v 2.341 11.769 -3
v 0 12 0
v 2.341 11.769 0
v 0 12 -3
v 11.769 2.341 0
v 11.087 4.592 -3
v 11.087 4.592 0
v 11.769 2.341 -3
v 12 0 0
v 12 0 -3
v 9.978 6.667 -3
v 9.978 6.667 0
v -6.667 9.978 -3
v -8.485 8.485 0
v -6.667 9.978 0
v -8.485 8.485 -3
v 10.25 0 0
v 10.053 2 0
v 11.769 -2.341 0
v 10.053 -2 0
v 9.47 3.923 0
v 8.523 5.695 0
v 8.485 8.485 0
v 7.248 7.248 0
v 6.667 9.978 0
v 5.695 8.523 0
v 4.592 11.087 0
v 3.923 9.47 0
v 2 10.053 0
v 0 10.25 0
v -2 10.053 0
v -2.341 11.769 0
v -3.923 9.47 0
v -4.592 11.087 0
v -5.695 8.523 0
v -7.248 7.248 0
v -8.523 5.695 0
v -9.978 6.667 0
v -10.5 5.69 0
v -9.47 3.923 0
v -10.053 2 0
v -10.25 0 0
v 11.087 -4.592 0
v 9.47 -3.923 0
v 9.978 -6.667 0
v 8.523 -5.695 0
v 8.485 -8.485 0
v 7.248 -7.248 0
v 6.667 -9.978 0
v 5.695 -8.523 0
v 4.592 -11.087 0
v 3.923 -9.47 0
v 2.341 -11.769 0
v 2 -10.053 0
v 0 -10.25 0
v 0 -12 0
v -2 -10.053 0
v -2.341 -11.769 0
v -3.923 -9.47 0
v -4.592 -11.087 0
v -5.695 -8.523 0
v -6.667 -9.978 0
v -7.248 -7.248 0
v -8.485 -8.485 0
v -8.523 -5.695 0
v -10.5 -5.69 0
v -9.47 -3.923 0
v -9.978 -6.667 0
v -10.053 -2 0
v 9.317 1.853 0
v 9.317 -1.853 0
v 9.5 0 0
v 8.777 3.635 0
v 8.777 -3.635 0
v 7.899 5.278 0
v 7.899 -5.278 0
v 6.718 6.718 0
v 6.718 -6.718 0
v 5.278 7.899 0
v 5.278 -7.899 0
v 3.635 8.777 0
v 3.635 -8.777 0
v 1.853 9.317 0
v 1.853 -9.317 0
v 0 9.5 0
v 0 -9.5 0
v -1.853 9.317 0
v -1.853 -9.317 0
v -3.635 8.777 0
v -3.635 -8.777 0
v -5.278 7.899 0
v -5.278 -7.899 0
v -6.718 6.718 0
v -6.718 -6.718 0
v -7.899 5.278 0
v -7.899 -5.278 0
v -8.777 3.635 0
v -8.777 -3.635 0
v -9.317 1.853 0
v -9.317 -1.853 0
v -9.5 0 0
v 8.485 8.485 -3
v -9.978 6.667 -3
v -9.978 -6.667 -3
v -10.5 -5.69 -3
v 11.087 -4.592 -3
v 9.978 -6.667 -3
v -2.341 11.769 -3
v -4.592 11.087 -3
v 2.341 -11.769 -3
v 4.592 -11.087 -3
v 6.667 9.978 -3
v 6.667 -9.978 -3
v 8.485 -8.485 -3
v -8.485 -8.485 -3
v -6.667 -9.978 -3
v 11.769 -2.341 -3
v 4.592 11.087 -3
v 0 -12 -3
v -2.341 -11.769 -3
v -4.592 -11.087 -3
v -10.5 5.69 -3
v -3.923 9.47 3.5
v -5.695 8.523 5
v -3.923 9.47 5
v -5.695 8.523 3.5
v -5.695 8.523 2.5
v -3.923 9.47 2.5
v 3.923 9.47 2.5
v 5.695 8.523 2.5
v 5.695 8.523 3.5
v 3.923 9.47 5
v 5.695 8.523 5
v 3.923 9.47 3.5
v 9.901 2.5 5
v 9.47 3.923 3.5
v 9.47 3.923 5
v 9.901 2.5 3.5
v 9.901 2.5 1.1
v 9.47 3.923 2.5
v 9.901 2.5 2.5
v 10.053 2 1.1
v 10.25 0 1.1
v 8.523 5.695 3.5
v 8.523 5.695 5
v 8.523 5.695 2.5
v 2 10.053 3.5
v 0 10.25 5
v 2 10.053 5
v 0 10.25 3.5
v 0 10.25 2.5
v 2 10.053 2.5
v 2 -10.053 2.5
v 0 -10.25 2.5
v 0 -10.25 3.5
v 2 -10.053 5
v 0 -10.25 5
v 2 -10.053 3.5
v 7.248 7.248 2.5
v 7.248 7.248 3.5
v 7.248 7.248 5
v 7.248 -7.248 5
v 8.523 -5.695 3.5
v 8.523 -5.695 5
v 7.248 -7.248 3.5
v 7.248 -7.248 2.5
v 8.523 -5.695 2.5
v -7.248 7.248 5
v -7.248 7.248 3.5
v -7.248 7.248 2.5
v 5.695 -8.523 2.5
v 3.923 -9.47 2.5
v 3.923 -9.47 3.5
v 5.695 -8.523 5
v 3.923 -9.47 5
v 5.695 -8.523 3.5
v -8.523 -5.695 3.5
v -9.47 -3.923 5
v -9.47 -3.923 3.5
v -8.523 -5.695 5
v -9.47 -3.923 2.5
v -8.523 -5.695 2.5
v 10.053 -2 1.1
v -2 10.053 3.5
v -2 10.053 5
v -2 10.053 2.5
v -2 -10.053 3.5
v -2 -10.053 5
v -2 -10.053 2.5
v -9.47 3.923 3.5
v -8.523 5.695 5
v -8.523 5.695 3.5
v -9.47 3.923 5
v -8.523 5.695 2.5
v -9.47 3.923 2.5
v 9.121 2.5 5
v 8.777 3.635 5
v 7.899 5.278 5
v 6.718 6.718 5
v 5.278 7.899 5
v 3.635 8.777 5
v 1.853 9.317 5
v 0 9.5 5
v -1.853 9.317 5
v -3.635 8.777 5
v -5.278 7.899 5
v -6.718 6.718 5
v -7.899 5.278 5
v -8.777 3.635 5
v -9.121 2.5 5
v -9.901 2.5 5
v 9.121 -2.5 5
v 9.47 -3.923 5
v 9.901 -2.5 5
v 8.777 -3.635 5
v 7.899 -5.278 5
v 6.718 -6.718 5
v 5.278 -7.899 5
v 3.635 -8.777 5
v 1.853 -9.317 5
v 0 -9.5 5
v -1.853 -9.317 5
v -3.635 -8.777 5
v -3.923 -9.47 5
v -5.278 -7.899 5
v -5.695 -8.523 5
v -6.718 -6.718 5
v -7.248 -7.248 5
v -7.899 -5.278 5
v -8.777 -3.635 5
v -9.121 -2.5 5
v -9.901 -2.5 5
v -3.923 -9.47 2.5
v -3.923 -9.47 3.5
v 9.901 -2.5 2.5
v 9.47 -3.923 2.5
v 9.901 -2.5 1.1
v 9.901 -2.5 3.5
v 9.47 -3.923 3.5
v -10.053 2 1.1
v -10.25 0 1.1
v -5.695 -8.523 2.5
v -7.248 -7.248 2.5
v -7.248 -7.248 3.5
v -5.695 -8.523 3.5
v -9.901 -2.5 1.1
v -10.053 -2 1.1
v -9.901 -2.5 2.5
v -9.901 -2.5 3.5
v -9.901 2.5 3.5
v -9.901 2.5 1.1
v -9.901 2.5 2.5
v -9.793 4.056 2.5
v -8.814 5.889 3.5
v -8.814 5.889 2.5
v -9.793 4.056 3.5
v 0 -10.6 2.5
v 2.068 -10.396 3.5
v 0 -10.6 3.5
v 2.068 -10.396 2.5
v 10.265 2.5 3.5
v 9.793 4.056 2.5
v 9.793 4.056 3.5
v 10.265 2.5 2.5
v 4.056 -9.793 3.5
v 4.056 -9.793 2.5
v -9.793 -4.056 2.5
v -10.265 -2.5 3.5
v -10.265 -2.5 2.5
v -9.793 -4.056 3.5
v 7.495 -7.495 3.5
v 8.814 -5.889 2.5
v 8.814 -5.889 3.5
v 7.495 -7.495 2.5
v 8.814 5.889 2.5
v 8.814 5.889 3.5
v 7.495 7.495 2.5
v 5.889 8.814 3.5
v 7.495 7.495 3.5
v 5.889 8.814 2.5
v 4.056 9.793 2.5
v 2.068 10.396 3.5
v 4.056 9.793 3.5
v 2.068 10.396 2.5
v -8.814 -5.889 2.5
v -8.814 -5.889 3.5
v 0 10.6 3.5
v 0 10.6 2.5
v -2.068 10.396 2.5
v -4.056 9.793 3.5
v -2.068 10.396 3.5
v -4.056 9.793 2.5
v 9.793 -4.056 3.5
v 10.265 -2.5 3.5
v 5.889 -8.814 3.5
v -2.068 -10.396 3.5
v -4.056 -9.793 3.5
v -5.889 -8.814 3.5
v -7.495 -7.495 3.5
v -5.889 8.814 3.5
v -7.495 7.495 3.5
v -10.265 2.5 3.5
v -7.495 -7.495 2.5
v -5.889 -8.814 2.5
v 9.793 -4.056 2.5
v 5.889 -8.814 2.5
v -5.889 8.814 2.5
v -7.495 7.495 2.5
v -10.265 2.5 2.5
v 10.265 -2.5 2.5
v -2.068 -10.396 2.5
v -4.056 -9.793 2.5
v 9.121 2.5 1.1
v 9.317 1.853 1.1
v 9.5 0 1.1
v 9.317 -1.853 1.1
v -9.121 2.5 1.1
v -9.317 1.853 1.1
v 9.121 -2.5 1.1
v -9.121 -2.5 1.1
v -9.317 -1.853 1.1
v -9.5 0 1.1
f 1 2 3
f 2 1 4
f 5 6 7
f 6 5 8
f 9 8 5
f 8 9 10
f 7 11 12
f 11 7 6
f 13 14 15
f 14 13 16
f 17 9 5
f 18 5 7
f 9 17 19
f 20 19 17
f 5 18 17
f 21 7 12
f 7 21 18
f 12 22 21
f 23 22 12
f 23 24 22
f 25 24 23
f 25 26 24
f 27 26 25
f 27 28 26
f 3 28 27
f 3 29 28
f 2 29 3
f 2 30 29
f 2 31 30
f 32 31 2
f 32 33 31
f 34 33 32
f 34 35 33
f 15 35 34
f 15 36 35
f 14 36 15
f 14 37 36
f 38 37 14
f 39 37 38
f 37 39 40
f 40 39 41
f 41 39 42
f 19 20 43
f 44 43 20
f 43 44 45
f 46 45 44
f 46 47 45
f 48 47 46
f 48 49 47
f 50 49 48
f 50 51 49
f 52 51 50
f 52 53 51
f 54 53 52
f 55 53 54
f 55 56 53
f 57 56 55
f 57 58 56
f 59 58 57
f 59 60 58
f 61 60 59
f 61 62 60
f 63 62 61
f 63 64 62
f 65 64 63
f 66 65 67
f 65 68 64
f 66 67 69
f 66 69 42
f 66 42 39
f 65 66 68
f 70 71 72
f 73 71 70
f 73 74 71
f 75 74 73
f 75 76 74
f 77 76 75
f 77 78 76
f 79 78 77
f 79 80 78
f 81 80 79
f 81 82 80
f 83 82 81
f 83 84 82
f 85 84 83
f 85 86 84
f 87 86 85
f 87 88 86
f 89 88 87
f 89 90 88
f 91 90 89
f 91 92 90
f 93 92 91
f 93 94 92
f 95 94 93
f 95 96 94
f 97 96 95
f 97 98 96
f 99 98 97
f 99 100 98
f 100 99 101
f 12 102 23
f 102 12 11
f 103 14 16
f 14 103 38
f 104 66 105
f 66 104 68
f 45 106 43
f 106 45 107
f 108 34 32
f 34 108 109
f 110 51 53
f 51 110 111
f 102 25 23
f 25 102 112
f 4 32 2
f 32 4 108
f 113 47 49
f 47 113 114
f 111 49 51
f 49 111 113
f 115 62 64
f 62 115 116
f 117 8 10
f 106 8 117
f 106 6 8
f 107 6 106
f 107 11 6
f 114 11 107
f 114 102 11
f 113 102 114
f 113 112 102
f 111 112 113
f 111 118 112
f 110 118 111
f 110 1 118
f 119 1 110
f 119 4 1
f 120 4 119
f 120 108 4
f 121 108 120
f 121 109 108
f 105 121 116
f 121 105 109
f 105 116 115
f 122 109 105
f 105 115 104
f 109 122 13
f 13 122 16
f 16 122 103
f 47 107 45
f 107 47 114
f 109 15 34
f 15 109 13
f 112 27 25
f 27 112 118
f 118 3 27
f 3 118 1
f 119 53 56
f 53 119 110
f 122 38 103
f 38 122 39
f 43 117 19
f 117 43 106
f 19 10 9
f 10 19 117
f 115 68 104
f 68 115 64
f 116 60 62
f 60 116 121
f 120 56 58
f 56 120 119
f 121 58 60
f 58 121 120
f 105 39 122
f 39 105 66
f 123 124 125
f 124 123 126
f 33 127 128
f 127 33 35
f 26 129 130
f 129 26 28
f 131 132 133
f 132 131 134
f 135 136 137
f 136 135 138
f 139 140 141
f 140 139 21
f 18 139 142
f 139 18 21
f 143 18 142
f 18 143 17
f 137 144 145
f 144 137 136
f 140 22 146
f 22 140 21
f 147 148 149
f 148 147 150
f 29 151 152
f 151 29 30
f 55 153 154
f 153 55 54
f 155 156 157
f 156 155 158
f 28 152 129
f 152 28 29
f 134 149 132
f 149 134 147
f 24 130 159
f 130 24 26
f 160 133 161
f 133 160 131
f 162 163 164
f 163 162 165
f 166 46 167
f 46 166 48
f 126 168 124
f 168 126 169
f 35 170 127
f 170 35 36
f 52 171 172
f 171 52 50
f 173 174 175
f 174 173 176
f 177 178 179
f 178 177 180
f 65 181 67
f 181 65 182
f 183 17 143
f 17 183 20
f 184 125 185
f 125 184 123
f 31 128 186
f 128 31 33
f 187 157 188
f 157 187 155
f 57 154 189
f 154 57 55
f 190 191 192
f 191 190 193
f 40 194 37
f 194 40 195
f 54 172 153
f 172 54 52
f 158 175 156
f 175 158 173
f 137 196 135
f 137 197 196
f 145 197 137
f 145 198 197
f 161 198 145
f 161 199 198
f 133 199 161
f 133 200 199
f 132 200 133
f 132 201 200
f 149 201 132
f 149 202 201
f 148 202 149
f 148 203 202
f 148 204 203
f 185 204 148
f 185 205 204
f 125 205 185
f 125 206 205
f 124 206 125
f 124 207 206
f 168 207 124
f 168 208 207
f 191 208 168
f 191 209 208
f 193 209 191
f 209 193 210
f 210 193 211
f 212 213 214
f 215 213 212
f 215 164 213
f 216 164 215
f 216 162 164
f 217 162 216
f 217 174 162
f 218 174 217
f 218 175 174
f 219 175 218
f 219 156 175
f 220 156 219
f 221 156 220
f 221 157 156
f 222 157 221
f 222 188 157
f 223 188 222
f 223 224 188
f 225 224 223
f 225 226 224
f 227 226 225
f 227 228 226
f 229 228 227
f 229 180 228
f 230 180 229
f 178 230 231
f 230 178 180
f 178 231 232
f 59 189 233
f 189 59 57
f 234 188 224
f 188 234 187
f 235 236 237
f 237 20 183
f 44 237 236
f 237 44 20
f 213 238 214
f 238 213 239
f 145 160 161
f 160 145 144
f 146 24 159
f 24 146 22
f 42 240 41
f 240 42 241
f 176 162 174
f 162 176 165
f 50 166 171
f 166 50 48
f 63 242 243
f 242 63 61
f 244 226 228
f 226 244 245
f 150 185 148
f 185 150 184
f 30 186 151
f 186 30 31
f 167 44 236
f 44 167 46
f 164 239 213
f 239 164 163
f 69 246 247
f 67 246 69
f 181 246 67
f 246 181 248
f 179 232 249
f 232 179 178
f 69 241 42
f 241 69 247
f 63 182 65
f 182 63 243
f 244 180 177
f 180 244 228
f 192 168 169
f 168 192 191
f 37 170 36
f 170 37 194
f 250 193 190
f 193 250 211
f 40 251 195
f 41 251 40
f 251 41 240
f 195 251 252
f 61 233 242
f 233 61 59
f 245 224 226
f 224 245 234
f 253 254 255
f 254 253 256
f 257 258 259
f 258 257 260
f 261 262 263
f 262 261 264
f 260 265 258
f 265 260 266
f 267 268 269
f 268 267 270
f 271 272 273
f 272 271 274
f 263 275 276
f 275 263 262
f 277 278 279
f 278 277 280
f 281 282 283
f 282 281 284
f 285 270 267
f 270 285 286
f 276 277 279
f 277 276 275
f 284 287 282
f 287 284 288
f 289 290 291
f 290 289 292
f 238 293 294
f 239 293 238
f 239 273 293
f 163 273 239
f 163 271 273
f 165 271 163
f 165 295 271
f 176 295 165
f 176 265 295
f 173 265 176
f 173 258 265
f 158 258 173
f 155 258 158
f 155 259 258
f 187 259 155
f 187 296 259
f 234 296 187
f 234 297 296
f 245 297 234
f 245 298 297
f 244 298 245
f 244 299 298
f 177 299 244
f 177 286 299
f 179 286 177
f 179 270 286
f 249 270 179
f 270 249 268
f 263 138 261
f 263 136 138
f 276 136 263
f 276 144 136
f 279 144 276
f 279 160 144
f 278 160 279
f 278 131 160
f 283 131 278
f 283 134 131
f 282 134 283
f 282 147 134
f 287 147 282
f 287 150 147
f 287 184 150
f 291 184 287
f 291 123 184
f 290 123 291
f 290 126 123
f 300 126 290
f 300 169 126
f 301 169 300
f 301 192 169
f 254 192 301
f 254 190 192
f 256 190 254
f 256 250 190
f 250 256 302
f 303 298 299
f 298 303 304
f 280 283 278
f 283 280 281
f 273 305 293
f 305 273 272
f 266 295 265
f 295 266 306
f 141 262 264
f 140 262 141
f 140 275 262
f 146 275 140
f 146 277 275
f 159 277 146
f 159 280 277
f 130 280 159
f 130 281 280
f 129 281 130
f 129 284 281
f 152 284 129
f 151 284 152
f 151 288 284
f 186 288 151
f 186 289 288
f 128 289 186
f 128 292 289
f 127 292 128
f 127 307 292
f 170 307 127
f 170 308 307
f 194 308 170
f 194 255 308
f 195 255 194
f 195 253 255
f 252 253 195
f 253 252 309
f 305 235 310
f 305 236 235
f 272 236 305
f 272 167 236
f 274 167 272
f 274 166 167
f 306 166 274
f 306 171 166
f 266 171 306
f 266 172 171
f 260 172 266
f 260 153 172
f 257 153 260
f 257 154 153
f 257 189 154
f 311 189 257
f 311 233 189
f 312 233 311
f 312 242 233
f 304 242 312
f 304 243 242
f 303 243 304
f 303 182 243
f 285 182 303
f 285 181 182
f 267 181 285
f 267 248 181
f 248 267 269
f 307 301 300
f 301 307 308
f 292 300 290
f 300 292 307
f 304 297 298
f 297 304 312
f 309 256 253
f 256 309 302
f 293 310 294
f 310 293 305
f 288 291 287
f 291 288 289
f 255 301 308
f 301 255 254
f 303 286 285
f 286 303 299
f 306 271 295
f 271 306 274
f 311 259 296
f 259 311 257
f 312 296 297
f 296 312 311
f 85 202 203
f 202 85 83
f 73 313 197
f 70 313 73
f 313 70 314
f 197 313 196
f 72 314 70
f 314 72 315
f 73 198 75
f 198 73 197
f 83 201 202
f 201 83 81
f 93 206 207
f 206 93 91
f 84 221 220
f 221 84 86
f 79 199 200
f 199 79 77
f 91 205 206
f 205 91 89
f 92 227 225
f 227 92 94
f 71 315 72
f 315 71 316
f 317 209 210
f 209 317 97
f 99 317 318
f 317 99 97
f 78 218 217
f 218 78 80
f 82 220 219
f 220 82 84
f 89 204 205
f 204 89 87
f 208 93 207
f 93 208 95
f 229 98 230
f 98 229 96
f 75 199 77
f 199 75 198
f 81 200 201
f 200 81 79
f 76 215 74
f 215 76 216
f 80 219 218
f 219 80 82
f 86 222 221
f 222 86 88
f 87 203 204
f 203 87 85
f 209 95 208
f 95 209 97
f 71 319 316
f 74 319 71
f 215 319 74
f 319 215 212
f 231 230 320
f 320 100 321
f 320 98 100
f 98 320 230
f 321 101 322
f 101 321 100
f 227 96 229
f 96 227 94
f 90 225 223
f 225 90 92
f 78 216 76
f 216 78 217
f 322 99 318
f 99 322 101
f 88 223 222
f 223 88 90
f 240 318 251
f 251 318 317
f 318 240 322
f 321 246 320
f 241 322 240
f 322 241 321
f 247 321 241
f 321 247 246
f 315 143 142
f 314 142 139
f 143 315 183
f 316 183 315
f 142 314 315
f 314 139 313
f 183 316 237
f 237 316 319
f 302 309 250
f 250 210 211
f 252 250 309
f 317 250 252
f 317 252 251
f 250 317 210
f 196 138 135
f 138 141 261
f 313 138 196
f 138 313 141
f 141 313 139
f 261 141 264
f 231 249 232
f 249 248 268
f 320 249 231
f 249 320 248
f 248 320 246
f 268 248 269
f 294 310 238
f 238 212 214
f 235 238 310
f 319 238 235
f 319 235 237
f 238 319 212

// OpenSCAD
$fn = 32;

outer_cap_diameter = 24;
outer_insert_diameter = 20.5;
inner_insert_diameter = 19;

// Bottom cap
difference() {
    translate([0, 0, -1.5])
        cylinder(h = 3, d = outer_cap_diameter, center = true);
    translate([-outer_cap_diameter/2, -0, 0])
        cube([3, outer_cap_diameter, 10], center=true);
}

// Insert
difference() {
    union() {
        cylinder(h = 5, d = outer_insert_diameter);
        translate([0, 0, 2.5])
            cylinder(h = 1, d = outer_insert_diameter + 0.7);
    }
    cylinder(h = 5 + 0.1, d = inner_insert_diameter);
    #translate([0, 0, 3.1])
    cube([outer_cap_diameter, 5, 4], center=true);
}
